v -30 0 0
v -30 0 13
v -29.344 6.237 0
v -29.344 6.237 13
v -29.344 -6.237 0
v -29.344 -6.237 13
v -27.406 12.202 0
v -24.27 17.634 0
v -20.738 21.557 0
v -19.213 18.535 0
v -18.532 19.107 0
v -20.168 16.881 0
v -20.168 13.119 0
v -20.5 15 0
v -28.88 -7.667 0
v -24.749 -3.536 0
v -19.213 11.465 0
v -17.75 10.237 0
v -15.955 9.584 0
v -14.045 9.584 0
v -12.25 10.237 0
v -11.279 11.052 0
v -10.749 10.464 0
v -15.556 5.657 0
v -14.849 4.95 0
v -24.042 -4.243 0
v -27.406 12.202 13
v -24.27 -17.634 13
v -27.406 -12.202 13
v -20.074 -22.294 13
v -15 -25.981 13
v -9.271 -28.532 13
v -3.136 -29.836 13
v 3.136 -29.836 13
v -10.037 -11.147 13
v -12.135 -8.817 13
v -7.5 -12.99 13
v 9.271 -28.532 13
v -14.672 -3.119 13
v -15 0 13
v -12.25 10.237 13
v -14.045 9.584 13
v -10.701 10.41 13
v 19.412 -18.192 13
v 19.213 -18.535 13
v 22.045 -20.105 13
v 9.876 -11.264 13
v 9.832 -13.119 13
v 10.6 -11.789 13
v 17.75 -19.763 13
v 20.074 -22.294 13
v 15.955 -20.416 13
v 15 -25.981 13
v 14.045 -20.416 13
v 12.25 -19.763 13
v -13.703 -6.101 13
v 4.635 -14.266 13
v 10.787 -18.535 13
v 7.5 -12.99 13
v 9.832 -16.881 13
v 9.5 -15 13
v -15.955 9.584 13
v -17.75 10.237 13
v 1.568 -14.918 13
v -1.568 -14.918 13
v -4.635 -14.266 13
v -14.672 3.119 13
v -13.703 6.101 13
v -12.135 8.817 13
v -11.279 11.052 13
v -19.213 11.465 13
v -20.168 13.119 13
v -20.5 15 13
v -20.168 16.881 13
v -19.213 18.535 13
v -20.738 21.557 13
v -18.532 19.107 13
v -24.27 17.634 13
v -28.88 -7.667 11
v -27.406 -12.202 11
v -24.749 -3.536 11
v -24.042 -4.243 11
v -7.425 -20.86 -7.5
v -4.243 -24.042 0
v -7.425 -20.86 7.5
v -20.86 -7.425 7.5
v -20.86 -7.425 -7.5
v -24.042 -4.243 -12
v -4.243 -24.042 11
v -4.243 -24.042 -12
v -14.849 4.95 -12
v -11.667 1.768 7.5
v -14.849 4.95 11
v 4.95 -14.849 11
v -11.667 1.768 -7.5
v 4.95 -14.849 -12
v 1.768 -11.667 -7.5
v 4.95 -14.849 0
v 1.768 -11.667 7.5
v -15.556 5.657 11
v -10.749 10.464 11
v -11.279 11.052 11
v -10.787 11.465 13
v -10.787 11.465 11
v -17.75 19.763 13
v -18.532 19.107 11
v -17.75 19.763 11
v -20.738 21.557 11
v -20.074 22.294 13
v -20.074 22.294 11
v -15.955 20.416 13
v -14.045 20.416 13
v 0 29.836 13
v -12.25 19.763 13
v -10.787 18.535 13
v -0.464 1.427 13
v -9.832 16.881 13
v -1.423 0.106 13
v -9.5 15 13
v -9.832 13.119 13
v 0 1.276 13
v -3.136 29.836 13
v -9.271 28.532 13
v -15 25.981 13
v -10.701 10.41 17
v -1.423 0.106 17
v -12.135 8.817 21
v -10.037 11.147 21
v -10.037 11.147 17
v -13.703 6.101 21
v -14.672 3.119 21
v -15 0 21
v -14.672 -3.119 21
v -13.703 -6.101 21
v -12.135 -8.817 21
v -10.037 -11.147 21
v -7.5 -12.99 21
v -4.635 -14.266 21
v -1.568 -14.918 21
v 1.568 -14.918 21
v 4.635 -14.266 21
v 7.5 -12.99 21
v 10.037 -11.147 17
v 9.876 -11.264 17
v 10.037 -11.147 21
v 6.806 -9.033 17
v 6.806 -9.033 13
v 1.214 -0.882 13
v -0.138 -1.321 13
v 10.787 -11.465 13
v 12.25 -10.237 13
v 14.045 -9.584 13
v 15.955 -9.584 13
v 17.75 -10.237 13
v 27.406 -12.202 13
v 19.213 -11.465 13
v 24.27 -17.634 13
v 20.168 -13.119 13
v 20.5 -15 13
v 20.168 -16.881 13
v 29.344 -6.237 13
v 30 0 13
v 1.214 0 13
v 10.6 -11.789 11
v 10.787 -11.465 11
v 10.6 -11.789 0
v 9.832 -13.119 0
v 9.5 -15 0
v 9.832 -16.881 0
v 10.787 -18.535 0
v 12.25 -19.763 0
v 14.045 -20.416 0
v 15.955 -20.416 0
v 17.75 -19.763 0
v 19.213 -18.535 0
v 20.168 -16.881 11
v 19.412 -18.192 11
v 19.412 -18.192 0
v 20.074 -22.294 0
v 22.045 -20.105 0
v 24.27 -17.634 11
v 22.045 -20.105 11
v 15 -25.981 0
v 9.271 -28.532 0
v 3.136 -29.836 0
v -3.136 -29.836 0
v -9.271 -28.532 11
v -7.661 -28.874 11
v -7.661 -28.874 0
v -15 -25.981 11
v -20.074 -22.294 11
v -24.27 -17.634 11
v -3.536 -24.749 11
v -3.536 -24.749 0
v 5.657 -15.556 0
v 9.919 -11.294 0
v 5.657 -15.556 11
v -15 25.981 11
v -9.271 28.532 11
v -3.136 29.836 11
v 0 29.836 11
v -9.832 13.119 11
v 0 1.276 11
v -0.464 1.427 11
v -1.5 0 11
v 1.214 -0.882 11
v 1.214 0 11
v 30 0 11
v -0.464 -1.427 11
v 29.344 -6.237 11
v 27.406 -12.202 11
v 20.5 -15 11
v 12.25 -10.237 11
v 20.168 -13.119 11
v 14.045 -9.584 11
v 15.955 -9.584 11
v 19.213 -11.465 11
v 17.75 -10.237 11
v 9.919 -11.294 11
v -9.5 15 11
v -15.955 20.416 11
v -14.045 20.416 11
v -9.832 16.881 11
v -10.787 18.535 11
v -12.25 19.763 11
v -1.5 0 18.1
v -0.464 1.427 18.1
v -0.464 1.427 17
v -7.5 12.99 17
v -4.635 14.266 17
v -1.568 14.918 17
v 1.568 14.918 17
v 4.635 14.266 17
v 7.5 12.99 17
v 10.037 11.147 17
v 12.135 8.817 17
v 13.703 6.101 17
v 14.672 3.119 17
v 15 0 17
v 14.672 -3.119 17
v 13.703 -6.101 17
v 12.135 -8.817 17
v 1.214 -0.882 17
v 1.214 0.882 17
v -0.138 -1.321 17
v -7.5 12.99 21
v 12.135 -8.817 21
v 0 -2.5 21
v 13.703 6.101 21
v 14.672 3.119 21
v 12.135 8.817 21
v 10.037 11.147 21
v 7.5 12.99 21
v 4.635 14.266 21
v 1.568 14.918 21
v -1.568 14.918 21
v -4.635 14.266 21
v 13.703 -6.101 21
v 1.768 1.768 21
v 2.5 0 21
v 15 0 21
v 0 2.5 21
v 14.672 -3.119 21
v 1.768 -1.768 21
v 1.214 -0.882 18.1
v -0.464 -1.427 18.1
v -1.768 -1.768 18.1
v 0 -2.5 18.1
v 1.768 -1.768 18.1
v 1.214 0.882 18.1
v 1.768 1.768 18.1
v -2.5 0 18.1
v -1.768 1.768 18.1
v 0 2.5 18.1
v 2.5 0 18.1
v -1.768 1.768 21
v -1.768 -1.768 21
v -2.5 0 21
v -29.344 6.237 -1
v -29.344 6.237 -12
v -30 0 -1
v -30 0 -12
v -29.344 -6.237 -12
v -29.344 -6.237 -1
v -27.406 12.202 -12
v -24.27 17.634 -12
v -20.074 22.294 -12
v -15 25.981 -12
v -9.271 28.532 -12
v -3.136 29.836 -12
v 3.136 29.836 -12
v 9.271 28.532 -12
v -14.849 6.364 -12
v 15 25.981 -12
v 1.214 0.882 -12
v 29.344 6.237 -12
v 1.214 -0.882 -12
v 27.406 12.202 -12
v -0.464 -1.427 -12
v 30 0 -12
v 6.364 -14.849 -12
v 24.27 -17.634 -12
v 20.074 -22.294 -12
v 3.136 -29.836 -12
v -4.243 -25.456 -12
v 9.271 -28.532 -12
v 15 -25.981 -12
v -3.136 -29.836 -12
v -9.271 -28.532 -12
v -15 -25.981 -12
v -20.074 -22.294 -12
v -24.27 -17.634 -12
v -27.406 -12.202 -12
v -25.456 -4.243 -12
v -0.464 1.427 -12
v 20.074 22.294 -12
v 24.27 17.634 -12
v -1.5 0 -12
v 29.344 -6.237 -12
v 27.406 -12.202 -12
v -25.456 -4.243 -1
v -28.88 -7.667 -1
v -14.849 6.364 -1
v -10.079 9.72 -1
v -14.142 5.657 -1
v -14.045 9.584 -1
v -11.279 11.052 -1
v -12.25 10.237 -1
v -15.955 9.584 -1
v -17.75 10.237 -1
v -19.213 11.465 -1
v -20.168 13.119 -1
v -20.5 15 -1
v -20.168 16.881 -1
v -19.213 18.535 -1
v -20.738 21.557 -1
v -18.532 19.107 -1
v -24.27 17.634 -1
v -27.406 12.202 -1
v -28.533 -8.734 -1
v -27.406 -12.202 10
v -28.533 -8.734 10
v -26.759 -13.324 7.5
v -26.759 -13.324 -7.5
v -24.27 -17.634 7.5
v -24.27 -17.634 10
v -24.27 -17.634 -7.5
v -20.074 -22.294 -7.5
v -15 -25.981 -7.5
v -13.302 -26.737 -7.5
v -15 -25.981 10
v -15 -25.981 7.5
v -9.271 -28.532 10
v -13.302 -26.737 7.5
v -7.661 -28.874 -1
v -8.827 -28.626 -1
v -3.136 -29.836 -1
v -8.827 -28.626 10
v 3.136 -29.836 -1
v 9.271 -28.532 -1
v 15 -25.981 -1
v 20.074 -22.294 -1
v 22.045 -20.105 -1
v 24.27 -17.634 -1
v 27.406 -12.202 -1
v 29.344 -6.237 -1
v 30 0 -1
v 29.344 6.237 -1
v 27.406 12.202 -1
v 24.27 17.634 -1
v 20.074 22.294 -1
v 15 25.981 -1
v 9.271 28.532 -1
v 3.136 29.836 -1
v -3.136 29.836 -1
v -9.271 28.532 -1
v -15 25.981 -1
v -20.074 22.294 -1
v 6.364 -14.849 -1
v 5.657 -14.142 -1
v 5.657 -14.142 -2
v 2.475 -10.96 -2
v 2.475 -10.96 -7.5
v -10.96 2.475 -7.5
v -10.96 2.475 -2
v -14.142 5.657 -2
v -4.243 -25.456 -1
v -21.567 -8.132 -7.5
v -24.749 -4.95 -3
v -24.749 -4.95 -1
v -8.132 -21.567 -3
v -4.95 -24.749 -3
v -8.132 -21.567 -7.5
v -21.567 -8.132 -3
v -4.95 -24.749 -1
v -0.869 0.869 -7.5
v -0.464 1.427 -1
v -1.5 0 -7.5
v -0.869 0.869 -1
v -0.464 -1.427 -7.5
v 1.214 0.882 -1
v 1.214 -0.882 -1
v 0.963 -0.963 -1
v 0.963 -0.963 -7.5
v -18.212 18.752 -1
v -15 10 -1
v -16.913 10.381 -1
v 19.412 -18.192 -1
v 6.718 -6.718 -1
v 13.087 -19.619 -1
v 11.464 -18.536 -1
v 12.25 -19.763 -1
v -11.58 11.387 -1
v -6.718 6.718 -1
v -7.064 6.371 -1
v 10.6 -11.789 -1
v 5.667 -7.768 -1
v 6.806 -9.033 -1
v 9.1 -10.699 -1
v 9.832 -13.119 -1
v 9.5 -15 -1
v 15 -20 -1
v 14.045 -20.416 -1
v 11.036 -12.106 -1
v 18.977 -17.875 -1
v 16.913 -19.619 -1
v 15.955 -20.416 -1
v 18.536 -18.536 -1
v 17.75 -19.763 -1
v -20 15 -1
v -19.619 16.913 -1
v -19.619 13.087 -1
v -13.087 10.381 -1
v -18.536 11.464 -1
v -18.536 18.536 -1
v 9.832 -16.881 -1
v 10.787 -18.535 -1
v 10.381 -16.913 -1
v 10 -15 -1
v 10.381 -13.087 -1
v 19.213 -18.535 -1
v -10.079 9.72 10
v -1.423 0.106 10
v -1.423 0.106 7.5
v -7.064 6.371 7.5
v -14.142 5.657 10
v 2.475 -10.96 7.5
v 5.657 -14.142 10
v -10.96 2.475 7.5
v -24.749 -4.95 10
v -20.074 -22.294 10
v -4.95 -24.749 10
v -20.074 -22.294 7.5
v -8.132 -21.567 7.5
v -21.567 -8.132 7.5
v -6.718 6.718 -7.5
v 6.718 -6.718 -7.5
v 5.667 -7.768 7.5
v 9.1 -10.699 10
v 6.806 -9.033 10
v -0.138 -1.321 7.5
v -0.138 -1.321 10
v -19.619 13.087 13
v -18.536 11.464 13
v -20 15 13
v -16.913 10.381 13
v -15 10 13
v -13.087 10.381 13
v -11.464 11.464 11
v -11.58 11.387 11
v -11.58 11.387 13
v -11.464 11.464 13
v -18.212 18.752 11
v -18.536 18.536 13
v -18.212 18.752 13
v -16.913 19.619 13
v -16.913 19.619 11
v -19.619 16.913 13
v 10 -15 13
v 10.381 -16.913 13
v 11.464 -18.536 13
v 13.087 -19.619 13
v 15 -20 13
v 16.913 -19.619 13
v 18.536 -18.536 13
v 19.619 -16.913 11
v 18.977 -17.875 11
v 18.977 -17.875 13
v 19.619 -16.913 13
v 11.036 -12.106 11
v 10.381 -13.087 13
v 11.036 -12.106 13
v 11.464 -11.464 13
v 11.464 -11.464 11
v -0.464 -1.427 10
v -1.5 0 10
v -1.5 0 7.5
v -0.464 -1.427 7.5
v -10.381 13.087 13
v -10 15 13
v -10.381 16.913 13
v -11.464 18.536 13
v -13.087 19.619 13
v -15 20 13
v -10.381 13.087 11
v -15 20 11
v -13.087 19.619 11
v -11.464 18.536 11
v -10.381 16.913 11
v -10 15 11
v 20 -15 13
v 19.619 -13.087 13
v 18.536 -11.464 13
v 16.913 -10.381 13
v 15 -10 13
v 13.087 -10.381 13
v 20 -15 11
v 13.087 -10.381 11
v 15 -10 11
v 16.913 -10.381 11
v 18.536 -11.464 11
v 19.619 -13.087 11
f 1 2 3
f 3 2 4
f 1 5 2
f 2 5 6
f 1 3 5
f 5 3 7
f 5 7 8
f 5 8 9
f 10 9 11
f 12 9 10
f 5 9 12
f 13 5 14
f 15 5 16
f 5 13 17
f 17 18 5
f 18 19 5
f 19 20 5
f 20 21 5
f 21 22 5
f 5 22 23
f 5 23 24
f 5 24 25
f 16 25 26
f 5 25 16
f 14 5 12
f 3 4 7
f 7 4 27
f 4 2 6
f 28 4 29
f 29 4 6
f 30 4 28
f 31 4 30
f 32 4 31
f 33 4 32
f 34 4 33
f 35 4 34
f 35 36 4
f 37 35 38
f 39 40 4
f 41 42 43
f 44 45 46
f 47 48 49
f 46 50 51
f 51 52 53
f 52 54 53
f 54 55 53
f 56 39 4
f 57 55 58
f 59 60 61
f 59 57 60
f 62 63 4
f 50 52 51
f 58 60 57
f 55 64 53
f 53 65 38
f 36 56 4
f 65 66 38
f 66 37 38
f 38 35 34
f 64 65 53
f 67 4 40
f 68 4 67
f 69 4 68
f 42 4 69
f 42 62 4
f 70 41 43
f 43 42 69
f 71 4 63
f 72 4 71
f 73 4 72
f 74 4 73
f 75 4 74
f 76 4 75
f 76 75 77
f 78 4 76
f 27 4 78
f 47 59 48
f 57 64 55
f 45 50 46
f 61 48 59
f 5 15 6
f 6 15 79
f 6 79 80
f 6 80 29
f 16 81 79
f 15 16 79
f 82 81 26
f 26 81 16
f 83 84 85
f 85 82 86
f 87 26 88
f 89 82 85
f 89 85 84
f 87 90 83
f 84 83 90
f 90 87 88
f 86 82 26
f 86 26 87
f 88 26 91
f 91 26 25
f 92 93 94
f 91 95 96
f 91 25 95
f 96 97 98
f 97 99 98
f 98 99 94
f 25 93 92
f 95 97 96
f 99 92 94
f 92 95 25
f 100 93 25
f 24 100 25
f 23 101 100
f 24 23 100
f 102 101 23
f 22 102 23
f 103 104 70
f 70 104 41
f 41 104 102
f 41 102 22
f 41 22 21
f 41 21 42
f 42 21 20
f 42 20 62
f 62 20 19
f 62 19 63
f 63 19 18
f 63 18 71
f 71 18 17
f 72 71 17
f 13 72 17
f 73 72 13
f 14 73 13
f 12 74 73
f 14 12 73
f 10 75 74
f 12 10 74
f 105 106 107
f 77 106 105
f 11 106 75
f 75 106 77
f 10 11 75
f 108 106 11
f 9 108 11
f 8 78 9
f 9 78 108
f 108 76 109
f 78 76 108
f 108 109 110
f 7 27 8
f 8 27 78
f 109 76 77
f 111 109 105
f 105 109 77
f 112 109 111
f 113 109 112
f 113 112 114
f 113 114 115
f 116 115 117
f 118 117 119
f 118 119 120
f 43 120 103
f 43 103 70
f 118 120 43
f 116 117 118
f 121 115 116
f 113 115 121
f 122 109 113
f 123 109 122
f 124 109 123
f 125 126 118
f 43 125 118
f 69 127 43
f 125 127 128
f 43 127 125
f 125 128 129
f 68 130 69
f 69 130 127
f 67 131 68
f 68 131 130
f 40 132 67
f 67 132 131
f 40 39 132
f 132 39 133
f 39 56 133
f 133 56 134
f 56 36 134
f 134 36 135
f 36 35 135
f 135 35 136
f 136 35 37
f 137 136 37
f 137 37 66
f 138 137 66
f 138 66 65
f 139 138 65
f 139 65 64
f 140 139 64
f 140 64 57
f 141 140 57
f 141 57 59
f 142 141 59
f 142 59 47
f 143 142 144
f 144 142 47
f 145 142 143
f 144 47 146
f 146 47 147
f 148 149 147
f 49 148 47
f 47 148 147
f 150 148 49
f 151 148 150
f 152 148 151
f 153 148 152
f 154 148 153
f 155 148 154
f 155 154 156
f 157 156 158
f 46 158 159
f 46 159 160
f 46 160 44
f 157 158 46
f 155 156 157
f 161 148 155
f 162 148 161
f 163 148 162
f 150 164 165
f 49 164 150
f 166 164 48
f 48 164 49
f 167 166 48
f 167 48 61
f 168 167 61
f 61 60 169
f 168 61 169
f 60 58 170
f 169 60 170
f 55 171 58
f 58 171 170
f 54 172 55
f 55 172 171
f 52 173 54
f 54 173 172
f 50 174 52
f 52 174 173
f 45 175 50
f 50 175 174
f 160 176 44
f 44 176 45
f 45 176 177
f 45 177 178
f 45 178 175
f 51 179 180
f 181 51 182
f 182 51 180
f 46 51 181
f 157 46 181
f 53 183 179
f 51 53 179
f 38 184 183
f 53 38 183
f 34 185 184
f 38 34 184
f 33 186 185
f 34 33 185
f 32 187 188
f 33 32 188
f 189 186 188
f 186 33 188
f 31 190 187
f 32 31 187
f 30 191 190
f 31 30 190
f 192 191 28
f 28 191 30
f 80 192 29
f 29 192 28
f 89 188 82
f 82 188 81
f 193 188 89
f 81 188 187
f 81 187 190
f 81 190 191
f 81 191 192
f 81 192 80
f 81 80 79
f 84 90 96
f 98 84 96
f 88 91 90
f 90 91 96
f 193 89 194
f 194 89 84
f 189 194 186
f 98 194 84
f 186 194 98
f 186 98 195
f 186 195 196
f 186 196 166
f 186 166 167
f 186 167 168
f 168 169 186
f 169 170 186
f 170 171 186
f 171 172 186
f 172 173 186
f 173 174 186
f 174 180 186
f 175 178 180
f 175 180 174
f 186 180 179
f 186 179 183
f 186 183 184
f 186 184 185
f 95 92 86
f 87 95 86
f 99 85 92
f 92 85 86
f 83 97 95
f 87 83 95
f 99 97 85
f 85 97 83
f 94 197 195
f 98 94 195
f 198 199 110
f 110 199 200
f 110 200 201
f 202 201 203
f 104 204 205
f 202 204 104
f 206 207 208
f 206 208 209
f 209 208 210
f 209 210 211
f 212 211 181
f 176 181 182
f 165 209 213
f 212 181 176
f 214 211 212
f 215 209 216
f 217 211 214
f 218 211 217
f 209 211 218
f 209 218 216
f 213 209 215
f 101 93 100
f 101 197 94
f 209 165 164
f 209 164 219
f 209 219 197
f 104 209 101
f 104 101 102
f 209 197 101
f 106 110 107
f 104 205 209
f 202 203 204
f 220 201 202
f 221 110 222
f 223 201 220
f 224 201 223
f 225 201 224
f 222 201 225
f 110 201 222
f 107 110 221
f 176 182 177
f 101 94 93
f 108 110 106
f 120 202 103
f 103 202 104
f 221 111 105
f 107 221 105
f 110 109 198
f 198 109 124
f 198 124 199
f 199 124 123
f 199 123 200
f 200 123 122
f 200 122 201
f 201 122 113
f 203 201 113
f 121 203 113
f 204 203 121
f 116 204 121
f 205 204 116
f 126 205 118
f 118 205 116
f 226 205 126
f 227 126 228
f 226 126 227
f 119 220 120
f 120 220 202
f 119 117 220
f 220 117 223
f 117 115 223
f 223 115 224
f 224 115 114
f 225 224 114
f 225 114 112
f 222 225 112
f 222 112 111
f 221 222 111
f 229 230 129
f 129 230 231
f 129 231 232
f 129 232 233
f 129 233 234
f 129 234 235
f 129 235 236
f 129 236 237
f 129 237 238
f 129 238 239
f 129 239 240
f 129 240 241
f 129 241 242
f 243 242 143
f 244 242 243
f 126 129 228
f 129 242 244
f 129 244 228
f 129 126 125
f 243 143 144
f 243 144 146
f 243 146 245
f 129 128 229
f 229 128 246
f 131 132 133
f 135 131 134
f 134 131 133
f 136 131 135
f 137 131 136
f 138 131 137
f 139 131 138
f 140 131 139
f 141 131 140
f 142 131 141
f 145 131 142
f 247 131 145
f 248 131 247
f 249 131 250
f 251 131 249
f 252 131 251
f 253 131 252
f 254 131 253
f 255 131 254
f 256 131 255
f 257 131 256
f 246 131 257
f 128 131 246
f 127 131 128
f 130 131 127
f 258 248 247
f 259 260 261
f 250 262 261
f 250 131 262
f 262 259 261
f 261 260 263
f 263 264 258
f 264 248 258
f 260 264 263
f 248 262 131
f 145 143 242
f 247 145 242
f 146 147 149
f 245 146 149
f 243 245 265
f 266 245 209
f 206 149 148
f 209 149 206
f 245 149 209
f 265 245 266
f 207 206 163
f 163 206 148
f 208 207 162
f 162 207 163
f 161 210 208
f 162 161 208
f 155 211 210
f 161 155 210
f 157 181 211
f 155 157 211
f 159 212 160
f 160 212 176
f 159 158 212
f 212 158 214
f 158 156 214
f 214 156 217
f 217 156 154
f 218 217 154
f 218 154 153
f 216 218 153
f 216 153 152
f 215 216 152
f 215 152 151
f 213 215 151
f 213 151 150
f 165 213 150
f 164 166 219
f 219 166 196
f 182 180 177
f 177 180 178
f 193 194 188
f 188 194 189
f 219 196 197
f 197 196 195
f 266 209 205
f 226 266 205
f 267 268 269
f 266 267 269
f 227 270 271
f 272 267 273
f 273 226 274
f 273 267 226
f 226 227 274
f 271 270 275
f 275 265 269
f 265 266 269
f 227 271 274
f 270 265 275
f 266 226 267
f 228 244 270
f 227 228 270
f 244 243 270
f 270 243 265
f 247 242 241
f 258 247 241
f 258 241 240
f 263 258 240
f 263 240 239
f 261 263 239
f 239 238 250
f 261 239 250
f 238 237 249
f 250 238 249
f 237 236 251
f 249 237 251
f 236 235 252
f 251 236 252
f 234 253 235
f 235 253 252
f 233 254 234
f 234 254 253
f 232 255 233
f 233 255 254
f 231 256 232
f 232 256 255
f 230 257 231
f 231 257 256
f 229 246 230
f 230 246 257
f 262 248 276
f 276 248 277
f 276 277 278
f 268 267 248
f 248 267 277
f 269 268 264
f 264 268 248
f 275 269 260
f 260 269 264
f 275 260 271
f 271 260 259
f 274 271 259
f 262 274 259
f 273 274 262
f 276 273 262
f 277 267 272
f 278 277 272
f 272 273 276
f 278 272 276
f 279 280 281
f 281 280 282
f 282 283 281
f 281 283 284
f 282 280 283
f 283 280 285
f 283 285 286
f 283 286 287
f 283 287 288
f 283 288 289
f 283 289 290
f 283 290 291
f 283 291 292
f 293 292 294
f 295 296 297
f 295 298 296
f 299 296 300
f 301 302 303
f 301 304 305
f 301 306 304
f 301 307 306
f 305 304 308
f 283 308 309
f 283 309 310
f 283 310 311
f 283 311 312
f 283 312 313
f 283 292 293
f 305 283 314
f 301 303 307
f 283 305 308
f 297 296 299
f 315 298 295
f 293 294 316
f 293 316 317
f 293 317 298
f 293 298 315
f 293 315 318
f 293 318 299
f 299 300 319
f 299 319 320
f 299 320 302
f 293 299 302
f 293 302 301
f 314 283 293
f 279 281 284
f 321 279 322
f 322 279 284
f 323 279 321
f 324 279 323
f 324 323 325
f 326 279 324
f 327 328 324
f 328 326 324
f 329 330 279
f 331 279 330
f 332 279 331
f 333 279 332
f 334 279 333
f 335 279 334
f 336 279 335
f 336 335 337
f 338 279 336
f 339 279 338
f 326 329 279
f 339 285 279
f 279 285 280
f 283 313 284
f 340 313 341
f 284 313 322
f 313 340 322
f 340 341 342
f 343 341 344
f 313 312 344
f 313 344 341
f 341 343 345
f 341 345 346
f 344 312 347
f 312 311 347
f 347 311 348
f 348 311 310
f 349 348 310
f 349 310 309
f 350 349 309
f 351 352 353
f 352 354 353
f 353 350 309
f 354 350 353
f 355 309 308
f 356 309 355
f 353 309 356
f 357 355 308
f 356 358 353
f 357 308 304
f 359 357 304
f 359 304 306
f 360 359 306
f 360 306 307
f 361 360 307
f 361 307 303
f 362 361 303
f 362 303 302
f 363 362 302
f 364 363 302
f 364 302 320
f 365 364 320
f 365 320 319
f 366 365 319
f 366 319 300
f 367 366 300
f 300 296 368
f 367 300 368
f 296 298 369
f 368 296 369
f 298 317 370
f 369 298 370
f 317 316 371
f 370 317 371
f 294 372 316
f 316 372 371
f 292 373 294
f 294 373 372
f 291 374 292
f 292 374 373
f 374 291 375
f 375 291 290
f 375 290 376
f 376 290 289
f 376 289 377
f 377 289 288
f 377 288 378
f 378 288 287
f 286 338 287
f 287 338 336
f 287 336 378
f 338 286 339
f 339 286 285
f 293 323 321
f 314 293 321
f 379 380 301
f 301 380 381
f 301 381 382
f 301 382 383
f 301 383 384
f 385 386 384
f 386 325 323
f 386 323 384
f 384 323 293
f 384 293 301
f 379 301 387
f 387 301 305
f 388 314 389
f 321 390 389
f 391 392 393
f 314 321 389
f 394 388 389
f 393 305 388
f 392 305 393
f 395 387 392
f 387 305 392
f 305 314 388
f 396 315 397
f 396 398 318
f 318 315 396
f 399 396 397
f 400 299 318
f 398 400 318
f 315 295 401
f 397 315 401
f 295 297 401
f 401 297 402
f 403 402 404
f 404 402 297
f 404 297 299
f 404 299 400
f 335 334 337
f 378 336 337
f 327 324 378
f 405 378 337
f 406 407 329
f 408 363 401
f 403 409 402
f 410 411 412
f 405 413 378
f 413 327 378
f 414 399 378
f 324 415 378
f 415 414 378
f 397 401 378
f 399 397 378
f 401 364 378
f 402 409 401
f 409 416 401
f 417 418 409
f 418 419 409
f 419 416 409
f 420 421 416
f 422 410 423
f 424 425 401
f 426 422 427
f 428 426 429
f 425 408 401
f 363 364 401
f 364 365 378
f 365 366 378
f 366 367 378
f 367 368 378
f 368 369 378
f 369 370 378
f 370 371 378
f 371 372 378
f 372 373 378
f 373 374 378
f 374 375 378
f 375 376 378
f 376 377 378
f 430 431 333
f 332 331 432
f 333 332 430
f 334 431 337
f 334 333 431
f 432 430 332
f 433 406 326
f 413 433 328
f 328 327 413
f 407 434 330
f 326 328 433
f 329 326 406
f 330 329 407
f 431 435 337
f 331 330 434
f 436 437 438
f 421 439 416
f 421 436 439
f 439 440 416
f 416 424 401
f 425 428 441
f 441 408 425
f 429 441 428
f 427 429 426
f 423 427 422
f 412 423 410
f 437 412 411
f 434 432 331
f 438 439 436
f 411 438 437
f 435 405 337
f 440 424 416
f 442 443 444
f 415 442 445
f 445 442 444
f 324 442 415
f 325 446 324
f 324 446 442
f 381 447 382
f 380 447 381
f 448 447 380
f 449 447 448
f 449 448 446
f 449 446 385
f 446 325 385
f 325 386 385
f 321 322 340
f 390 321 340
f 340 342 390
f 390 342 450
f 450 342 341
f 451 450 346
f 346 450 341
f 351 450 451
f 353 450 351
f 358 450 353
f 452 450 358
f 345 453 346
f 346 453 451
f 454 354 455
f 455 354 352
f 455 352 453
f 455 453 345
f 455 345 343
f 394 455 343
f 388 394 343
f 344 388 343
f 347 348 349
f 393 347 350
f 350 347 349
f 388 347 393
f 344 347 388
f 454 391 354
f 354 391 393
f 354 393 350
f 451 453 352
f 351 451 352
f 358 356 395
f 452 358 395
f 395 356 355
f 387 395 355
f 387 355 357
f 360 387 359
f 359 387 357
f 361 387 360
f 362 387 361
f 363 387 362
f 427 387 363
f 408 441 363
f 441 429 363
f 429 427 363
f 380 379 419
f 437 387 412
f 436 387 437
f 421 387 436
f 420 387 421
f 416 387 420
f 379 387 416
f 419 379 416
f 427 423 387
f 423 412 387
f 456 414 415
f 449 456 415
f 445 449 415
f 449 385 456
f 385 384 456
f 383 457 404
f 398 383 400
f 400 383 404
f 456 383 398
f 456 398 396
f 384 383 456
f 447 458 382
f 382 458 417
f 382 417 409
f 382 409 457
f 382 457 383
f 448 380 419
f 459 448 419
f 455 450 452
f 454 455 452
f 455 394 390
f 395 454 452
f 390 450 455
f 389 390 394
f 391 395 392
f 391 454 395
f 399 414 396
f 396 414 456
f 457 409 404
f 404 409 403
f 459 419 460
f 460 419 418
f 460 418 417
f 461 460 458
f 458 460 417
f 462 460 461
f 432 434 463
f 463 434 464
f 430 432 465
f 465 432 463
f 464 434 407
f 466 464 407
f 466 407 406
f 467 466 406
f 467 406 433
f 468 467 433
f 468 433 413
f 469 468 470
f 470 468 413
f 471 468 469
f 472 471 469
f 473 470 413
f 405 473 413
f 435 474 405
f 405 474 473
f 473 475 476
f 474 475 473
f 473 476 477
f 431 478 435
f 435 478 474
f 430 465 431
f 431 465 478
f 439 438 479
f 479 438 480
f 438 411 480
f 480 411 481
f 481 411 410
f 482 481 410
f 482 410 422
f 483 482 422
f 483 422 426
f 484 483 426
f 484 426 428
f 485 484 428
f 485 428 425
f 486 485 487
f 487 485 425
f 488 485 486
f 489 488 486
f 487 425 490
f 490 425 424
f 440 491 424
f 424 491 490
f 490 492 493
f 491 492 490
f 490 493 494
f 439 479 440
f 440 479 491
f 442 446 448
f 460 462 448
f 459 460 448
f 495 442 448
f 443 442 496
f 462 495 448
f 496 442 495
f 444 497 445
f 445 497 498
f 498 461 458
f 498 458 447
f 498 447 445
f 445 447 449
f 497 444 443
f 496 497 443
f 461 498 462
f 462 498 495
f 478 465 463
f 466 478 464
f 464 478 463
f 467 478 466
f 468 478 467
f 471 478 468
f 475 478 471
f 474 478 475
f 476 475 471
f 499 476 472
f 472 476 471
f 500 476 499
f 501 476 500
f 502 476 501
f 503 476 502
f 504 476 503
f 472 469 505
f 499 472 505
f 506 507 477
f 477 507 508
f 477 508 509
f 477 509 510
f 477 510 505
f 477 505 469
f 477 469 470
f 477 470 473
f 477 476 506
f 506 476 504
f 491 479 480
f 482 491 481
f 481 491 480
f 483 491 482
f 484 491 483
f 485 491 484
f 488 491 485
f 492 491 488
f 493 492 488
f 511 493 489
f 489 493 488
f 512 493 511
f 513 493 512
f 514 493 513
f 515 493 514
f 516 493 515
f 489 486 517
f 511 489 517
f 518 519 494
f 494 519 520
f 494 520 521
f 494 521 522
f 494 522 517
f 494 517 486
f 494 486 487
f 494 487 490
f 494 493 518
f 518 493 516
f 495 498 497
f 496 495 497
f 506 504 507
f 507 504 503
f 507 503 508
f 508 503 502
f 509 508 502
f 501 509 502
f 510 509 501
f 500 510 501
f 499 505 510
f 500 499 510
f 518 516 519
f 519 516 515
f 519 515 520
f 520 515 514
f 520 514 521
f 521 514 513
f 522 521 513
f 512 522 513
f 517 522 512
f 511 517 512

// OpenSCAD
r_base = 214;
h_base = 11;

r_glass = r_base;
h_glass = 4;

w_heater = 300;
h_heater = 2;

od_normal = 15;
od_compressed = 19;

r_clamp = 15;
d_clamp = r_clamp * 2;

module stage1() {
	difference() {
		union() {
			cylinder(r = r_clamp, h = h_glass + 3 * h_heater + h_base);	
			cylinder(r = r_clamp * 2, h = h_heater + h_base);
			translate ([0, 0, -h_base - 1]) cylinder(r = r_clamp * 2, h_base);
		};
	
	rotate([0,0,-45]) translate([-r_clamp, -4 / 3 * r_clamp-1, -h_base - 1])  cube([d_clamp, r_clamp, h_base]);

//!!!!!!!!!!!!!!!!!!!!!!!!!!!
	rotate([0,0,-45]) translate([-r_clamp,  -1/3 * r_clamp-2, 0])  cube([d_clamp, r_clamp, h_base]);
//!!!!!!!!!!!!!!!!!!!!!!!!!!!

	rotate([0,0,-45]) translate([-r_clamp,  -7/3 * r_clamp , -h_heater+1])  cube([d_clamp, r_clamp, h_base+h_heater-1]);

	for(i=[-1:2:1]) translate([i*r_clamp,-i*r_clamp,-1]) cylinder(d=d_clamp/3 + 1,h=h_base+h_heater+2);

	};
};

module stage2() {
	difference() {
		union() {
			stage1();
			rotate([0,0,-45]) translate([-r_clamp + 1, -4 / 3 * r_clamp, -h_base-1]) cube([d_clamp-2, r_clamp-2, h_base * 2 + h_heater]);
			
//!!!!!!!!!!!!!!!!!!!!
			rotate([0,0,-45]) translate([-r_clamp + 1,  -1/3*r_clamp-1, -h_heater])  cube([d_clamp-2, r_clamp, h_base+h_heater-1]);
//!!!!!!!!!!!!!!!!!!!!
			
			rotate([0,0,-45]) translate([-r_clamp + 1,  -7 / 3 * r_clamp-1, -h_heater-1])  cube([d_clamp-2, r_clamp, h_base+h_heater]);
			
			for(i=[-1:2:1]) translate([i * r_clamp, -i * r_clamp, -h_base + h_heater]) cylinder(d = d_clamp / 3, h = 2 * h_base);


		}
		base();
		rotate([0,0,-45]) translate([-od_compressed/2, -d_clamp-1, -h_base/2-h_heater]) cube([od_compressed, d_clamp+1, od_normal]);
		//bolt
		translate([0, 0, h_glass + 3 * h_heater + h_base]) rotate([0, 180, 0]) M3_Bolt(200);

	}
}

module clamp() {
	intersection() {
	stage2();
	translate([0,0,-100]) cylinder(r=d_clamp,h=200);
	}
}

module base() {
	//base
	translate([w_heater/2, w_heater/2, -1])color("brown") cylinder(r = r_base, h = h_base + 1);
	//heater
	color("red") translate([0, 0, h_base]) cube([w_heater, w_heater, h_heater]);
	//glass
	color("gray") translate([w_heater/2, w_heater/2, h_base + h_heater]) cylinder(r = r_glass, h = h_glass);
}

module M3_Bolt(len = 10) {
	color("black") cylinder(d = 5, h = 2.9);	
	color("black") cylinder(d = 3, h = len);	
}

clamp();

//rotate([0, 180, 0]) M3_Bolt();
